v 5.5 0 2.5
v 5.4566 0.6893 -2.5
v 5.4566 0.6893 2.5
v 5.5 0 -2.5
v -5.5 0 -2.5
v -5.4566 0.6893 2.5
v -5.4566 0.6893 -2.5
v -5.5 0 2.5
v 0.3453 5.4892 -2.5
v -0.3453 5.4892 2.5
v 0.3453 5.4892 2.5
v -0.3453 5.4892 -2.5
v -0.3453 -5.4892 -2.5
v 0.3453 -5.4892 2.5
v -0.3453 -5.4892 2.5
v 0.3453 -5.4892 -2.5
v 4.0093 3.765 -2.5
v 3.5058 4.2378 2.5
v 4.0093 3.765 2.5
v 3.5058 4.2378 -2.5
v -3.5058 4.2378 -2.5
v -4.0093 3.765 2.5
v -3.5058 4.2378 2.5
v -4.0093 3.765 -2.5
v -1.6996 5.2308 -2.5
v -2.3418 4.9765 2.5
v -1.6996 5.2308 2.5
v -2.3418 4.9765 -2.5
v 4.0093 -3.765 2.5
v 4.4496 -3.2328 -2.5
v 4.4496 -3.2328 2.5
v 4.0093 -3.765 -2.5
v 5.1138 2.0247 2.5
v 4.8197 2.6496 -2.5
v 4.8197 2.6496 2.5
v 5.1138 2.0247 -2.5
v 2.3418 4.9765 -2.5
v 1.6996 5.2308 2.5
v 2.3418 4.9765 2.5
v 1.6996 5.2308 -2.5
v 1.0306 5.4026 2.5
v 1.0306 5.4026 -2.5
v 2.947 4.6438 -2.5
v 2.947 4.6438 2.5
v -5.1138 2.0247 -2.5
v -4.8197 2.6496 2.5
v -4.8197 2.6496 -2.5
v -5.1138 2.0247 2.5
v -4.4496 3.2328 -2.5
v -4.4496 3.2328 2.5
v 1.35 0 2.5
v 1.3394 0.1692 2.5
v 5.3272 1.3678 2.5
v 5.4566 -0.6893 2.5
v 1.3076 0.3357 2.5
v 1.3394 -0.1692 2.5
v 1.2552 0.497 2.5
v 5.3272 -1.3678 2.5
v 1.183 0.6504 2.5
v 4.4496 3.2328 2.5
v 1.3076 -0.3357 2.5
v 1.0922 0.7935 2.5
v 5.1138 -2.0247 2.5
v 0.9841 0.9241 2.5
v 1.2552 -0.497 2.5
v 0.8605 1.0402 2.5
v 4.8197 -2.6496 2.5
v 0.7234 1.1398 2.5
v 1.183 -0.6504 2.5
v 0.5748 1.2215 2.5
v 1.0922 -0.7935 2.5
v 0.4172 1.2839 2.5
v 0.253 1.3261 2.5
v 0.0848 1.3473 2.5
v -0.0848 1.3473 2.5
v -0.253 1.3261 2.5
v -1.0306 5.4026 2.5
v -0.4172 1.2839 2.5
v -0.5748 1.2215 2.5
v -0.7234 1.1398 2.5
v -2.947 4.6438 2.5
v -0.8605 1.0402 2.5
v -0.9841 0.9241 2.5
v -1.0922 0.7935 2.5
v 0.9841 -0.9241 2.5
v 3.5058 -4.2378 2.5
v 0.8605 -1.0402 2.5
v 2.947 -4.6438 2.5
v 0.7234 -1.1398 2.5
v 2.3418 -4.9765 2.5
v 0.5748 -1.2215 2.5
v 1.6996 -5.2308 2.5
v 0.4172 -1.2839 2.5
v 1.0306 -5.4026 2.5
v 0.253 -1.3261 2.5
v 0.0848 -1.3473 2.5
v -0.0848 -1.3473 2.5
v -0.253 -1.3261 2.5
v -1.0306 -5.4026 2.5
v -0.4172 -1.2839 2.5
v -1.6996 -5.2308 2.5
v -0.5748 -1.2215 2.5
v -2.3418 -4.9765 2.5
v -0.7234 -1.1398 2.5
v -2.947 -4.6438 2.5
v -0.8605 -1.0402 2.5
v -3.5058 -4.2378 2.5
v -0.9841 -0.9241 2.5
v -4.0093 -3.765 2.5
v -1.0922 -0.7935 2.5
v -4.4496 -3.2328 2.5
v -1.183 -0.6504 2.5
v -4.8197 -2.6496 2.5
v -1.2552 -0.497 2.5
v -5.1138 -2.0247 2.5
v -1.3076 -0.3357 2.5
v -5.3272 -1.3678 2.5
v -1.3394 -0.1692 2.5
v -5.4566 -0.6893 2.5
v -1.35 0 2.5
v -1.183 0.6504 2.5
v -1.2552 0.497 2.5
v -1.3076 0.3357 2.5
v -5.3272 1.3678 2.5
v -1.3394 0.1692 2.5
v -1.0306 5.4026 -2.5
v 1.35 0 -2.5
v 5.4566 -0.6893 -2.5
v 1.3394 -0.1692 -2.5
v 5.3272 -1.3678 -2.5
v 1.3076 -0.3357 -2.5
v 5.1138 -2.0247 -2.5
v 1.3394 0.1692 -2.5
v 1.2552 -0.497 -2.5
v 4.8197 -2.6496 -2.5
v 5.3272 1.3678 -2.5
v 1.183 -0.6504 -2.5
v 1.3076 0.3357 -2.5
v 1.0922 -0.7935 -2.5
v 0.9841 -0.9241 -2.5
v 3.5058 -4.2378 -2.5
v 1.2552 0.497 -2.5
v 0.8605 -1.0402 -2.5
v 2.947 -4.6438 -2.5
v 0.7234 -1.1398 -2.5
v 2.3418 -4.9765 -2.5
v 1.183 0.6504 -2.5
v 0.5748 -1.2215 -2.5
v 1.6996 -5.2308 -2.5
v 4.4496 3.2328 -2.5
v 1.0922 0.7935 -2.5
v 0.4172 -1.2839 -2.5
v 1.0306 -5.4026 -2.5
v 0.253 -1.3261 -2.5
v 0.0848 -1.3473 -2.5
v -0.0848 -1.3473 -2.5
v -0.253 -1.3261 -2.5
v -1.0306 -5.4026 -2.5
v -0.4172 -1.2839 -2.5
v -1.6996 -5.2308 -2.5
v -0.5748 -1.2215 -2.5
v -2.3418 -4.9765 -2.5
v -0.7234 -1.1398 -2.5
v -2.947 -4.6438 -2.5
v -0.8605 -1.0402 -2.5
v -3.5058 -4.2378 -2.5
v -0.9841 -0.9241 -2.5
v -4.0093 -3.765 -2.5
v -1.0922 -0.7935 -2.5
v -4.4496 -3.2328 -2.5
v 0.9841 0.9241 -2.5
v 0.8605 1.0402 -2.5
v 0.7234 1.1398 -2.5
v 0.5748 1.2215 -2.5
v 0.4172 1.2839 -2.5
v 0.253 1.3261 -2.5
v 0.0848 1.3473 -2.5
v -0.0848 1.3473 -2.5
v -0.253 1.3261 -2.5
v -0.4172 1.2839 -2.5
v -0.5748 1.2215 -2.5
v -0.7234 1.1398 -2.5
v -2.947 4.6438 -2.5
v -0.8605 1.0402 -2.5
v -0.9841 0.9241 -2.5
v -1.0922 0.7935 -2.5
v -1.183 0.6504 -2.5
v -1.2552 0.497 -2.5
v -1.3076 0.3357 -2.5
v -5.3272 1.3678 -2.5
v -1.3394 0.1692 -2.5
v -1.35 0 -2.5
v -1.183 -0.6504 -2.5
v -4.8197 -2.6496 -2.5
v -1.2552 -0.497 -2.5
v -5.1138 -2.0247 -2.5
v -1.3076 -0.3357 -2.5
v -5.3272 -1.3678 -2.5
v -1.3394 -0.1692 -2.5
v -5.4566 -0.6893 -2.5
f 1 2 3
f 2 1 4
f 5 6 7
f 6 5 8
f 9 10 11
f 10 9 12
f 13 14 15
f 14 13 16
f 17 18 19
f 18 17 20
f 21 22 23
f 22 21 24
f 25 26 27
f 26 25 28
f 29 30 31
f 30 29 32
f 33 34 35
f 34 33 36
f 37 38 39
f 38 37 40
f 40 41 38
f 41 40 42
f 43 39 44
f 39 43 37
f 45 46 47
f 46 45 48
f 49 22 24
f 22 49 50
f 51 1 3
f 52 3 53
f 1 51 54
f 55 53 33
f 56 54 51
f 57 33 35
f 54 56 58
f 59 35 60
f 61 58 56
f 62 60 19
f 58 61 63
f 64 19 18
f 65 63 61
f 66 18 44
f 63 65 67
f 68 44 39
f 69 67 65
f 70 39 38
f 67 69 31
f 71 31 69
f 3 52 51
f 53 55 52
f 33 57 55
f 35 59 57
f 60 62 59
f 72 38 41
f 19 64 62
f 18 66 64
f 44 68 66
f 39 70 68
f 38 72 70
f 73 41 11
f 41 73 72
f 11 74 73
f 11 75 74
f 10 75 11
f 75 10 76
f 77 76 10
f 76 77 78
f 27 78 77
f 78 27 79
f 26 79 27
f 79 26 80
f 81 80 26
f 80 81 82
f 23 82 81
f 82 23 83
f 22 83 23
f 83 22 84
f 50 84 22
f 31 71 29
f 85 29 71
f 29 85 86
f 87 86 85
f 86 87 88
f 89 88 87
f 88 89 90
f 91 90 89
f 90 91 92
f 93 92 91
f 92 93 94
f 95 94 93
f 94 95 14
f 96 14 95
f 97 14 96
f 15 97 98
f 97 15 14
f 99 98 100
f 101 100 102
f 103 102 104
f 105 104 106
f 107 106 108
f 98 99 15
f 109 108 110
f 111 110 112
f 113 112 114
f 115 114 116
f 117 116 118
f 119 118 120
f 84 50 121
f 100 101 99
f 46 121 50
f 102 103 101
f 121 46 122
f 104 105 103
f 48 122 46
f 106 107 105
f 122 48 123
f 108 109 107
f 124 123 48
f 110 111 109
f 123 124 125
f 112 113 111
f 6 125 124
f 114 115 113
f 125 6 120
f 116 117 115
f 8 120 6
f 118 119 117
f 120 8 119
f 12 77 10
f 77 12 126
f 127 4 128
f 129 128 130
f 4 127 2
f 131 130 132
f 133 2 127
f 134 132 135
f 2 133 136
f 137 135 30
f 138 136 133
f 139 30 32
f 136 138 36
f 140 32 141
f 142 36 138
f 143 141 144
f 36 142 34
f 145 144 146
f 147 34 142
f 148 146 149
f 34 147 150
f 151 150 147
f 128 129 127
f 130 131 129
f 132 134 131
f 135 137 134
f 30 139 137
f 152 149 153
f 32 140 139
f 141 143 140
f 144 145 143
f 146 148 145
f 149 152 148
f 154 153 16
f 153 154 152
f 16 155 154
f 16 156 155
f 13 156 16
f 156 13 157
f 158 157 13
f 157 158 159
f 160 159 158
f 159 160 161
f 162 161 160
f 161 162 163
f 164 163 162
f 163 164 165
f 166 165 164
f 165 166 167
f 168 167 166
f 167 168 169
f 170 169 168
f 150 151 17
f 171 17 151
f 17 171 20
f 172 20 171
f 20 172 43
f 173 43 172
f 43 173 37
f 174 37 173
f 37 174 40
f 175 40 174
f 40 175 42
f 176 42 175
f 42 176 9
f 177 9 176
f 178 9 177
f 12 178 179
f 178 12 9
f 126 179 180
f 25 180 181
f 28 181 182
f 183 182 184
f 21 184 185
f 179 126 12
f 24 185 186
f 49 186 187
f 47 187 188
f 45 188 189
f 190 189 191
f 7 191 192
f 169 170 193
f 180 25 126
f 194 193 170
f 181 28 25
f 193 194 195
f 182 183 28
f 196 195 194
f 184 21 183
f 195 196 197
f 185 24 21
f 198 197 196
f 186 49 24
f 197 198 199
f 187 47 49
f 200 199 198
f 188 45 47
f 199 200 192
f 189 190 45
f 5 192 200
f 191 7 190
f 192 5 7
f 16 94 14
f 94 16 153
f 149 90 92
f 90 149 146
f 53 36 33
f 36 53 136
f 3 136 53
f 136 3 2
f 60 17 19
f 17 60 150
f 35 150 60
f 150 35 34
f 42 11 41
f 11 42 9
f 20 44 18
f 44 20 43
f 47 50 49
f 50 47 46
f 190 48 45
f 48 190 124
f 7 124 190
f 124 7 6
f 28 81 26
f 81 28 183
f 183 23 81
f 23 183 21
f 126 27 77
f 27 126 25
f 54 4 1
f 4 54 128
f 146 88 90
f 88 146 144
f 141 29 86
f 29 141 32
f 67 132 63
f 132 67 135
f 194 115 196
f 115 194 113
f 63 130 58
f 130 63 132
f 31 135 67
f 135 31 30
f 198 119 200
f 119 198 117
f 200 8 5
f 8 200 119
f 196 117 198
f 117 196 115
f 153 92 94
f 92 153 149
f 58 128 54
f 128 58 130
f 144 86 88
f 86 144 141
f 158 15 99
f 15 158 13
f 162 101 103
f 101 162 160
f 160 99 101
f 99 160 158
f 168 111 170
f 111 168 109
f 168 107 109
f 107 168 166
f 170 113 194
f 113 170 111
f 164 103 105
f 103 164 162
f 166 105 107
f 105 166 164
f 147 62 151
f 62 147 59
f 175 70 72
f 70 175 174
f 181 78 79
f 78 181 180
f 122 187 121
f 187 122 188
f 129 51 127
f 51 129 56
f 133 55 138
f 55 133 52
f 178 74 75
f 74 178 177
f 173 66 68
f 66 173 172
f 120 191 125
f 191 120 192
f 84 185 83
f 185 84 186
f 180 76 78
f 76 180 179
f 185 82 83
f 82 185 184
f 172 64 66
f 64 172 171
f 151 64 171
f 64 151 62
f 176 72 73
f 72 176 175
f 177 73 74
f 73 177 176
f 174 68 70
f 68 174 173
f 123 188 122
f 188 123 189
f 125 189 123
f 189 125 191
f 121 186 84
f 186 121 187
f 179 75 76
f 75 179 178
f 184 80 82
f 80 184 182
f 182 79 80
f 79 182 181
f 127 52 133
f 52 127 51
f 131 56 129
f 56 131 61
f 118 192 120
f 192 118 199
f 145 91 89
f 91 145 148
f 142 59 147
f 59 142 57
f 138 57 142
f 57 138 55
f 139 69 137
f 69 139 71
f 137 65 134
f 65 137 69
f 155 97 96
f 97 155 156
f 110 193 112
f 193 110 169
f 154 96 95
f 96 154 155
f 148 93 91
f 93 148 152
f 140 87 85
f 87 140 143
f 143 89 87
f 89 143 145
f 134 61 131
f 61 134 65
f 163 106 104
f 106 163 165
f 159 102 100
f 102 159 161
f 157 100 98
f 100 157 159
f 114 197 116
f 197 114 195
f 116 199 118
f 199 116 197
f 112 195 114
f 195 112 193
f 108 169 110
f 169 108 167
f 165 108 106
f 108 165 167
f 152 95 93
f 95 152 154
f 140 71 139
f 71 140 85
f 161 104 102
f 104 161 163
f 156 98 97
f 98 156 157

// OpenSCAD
$fn = 50;


difference() {
	union() {
		translate(v = [0, 0, -2.5000000000]) {
			cylinder(h = 5, r = 5.5000000000);
		}
	}
	union() {
		translate(v = [0, 0, -100.0000000000]) {
			cylinder(h = 200, r = 1.3500000000);
		}
	}
}
